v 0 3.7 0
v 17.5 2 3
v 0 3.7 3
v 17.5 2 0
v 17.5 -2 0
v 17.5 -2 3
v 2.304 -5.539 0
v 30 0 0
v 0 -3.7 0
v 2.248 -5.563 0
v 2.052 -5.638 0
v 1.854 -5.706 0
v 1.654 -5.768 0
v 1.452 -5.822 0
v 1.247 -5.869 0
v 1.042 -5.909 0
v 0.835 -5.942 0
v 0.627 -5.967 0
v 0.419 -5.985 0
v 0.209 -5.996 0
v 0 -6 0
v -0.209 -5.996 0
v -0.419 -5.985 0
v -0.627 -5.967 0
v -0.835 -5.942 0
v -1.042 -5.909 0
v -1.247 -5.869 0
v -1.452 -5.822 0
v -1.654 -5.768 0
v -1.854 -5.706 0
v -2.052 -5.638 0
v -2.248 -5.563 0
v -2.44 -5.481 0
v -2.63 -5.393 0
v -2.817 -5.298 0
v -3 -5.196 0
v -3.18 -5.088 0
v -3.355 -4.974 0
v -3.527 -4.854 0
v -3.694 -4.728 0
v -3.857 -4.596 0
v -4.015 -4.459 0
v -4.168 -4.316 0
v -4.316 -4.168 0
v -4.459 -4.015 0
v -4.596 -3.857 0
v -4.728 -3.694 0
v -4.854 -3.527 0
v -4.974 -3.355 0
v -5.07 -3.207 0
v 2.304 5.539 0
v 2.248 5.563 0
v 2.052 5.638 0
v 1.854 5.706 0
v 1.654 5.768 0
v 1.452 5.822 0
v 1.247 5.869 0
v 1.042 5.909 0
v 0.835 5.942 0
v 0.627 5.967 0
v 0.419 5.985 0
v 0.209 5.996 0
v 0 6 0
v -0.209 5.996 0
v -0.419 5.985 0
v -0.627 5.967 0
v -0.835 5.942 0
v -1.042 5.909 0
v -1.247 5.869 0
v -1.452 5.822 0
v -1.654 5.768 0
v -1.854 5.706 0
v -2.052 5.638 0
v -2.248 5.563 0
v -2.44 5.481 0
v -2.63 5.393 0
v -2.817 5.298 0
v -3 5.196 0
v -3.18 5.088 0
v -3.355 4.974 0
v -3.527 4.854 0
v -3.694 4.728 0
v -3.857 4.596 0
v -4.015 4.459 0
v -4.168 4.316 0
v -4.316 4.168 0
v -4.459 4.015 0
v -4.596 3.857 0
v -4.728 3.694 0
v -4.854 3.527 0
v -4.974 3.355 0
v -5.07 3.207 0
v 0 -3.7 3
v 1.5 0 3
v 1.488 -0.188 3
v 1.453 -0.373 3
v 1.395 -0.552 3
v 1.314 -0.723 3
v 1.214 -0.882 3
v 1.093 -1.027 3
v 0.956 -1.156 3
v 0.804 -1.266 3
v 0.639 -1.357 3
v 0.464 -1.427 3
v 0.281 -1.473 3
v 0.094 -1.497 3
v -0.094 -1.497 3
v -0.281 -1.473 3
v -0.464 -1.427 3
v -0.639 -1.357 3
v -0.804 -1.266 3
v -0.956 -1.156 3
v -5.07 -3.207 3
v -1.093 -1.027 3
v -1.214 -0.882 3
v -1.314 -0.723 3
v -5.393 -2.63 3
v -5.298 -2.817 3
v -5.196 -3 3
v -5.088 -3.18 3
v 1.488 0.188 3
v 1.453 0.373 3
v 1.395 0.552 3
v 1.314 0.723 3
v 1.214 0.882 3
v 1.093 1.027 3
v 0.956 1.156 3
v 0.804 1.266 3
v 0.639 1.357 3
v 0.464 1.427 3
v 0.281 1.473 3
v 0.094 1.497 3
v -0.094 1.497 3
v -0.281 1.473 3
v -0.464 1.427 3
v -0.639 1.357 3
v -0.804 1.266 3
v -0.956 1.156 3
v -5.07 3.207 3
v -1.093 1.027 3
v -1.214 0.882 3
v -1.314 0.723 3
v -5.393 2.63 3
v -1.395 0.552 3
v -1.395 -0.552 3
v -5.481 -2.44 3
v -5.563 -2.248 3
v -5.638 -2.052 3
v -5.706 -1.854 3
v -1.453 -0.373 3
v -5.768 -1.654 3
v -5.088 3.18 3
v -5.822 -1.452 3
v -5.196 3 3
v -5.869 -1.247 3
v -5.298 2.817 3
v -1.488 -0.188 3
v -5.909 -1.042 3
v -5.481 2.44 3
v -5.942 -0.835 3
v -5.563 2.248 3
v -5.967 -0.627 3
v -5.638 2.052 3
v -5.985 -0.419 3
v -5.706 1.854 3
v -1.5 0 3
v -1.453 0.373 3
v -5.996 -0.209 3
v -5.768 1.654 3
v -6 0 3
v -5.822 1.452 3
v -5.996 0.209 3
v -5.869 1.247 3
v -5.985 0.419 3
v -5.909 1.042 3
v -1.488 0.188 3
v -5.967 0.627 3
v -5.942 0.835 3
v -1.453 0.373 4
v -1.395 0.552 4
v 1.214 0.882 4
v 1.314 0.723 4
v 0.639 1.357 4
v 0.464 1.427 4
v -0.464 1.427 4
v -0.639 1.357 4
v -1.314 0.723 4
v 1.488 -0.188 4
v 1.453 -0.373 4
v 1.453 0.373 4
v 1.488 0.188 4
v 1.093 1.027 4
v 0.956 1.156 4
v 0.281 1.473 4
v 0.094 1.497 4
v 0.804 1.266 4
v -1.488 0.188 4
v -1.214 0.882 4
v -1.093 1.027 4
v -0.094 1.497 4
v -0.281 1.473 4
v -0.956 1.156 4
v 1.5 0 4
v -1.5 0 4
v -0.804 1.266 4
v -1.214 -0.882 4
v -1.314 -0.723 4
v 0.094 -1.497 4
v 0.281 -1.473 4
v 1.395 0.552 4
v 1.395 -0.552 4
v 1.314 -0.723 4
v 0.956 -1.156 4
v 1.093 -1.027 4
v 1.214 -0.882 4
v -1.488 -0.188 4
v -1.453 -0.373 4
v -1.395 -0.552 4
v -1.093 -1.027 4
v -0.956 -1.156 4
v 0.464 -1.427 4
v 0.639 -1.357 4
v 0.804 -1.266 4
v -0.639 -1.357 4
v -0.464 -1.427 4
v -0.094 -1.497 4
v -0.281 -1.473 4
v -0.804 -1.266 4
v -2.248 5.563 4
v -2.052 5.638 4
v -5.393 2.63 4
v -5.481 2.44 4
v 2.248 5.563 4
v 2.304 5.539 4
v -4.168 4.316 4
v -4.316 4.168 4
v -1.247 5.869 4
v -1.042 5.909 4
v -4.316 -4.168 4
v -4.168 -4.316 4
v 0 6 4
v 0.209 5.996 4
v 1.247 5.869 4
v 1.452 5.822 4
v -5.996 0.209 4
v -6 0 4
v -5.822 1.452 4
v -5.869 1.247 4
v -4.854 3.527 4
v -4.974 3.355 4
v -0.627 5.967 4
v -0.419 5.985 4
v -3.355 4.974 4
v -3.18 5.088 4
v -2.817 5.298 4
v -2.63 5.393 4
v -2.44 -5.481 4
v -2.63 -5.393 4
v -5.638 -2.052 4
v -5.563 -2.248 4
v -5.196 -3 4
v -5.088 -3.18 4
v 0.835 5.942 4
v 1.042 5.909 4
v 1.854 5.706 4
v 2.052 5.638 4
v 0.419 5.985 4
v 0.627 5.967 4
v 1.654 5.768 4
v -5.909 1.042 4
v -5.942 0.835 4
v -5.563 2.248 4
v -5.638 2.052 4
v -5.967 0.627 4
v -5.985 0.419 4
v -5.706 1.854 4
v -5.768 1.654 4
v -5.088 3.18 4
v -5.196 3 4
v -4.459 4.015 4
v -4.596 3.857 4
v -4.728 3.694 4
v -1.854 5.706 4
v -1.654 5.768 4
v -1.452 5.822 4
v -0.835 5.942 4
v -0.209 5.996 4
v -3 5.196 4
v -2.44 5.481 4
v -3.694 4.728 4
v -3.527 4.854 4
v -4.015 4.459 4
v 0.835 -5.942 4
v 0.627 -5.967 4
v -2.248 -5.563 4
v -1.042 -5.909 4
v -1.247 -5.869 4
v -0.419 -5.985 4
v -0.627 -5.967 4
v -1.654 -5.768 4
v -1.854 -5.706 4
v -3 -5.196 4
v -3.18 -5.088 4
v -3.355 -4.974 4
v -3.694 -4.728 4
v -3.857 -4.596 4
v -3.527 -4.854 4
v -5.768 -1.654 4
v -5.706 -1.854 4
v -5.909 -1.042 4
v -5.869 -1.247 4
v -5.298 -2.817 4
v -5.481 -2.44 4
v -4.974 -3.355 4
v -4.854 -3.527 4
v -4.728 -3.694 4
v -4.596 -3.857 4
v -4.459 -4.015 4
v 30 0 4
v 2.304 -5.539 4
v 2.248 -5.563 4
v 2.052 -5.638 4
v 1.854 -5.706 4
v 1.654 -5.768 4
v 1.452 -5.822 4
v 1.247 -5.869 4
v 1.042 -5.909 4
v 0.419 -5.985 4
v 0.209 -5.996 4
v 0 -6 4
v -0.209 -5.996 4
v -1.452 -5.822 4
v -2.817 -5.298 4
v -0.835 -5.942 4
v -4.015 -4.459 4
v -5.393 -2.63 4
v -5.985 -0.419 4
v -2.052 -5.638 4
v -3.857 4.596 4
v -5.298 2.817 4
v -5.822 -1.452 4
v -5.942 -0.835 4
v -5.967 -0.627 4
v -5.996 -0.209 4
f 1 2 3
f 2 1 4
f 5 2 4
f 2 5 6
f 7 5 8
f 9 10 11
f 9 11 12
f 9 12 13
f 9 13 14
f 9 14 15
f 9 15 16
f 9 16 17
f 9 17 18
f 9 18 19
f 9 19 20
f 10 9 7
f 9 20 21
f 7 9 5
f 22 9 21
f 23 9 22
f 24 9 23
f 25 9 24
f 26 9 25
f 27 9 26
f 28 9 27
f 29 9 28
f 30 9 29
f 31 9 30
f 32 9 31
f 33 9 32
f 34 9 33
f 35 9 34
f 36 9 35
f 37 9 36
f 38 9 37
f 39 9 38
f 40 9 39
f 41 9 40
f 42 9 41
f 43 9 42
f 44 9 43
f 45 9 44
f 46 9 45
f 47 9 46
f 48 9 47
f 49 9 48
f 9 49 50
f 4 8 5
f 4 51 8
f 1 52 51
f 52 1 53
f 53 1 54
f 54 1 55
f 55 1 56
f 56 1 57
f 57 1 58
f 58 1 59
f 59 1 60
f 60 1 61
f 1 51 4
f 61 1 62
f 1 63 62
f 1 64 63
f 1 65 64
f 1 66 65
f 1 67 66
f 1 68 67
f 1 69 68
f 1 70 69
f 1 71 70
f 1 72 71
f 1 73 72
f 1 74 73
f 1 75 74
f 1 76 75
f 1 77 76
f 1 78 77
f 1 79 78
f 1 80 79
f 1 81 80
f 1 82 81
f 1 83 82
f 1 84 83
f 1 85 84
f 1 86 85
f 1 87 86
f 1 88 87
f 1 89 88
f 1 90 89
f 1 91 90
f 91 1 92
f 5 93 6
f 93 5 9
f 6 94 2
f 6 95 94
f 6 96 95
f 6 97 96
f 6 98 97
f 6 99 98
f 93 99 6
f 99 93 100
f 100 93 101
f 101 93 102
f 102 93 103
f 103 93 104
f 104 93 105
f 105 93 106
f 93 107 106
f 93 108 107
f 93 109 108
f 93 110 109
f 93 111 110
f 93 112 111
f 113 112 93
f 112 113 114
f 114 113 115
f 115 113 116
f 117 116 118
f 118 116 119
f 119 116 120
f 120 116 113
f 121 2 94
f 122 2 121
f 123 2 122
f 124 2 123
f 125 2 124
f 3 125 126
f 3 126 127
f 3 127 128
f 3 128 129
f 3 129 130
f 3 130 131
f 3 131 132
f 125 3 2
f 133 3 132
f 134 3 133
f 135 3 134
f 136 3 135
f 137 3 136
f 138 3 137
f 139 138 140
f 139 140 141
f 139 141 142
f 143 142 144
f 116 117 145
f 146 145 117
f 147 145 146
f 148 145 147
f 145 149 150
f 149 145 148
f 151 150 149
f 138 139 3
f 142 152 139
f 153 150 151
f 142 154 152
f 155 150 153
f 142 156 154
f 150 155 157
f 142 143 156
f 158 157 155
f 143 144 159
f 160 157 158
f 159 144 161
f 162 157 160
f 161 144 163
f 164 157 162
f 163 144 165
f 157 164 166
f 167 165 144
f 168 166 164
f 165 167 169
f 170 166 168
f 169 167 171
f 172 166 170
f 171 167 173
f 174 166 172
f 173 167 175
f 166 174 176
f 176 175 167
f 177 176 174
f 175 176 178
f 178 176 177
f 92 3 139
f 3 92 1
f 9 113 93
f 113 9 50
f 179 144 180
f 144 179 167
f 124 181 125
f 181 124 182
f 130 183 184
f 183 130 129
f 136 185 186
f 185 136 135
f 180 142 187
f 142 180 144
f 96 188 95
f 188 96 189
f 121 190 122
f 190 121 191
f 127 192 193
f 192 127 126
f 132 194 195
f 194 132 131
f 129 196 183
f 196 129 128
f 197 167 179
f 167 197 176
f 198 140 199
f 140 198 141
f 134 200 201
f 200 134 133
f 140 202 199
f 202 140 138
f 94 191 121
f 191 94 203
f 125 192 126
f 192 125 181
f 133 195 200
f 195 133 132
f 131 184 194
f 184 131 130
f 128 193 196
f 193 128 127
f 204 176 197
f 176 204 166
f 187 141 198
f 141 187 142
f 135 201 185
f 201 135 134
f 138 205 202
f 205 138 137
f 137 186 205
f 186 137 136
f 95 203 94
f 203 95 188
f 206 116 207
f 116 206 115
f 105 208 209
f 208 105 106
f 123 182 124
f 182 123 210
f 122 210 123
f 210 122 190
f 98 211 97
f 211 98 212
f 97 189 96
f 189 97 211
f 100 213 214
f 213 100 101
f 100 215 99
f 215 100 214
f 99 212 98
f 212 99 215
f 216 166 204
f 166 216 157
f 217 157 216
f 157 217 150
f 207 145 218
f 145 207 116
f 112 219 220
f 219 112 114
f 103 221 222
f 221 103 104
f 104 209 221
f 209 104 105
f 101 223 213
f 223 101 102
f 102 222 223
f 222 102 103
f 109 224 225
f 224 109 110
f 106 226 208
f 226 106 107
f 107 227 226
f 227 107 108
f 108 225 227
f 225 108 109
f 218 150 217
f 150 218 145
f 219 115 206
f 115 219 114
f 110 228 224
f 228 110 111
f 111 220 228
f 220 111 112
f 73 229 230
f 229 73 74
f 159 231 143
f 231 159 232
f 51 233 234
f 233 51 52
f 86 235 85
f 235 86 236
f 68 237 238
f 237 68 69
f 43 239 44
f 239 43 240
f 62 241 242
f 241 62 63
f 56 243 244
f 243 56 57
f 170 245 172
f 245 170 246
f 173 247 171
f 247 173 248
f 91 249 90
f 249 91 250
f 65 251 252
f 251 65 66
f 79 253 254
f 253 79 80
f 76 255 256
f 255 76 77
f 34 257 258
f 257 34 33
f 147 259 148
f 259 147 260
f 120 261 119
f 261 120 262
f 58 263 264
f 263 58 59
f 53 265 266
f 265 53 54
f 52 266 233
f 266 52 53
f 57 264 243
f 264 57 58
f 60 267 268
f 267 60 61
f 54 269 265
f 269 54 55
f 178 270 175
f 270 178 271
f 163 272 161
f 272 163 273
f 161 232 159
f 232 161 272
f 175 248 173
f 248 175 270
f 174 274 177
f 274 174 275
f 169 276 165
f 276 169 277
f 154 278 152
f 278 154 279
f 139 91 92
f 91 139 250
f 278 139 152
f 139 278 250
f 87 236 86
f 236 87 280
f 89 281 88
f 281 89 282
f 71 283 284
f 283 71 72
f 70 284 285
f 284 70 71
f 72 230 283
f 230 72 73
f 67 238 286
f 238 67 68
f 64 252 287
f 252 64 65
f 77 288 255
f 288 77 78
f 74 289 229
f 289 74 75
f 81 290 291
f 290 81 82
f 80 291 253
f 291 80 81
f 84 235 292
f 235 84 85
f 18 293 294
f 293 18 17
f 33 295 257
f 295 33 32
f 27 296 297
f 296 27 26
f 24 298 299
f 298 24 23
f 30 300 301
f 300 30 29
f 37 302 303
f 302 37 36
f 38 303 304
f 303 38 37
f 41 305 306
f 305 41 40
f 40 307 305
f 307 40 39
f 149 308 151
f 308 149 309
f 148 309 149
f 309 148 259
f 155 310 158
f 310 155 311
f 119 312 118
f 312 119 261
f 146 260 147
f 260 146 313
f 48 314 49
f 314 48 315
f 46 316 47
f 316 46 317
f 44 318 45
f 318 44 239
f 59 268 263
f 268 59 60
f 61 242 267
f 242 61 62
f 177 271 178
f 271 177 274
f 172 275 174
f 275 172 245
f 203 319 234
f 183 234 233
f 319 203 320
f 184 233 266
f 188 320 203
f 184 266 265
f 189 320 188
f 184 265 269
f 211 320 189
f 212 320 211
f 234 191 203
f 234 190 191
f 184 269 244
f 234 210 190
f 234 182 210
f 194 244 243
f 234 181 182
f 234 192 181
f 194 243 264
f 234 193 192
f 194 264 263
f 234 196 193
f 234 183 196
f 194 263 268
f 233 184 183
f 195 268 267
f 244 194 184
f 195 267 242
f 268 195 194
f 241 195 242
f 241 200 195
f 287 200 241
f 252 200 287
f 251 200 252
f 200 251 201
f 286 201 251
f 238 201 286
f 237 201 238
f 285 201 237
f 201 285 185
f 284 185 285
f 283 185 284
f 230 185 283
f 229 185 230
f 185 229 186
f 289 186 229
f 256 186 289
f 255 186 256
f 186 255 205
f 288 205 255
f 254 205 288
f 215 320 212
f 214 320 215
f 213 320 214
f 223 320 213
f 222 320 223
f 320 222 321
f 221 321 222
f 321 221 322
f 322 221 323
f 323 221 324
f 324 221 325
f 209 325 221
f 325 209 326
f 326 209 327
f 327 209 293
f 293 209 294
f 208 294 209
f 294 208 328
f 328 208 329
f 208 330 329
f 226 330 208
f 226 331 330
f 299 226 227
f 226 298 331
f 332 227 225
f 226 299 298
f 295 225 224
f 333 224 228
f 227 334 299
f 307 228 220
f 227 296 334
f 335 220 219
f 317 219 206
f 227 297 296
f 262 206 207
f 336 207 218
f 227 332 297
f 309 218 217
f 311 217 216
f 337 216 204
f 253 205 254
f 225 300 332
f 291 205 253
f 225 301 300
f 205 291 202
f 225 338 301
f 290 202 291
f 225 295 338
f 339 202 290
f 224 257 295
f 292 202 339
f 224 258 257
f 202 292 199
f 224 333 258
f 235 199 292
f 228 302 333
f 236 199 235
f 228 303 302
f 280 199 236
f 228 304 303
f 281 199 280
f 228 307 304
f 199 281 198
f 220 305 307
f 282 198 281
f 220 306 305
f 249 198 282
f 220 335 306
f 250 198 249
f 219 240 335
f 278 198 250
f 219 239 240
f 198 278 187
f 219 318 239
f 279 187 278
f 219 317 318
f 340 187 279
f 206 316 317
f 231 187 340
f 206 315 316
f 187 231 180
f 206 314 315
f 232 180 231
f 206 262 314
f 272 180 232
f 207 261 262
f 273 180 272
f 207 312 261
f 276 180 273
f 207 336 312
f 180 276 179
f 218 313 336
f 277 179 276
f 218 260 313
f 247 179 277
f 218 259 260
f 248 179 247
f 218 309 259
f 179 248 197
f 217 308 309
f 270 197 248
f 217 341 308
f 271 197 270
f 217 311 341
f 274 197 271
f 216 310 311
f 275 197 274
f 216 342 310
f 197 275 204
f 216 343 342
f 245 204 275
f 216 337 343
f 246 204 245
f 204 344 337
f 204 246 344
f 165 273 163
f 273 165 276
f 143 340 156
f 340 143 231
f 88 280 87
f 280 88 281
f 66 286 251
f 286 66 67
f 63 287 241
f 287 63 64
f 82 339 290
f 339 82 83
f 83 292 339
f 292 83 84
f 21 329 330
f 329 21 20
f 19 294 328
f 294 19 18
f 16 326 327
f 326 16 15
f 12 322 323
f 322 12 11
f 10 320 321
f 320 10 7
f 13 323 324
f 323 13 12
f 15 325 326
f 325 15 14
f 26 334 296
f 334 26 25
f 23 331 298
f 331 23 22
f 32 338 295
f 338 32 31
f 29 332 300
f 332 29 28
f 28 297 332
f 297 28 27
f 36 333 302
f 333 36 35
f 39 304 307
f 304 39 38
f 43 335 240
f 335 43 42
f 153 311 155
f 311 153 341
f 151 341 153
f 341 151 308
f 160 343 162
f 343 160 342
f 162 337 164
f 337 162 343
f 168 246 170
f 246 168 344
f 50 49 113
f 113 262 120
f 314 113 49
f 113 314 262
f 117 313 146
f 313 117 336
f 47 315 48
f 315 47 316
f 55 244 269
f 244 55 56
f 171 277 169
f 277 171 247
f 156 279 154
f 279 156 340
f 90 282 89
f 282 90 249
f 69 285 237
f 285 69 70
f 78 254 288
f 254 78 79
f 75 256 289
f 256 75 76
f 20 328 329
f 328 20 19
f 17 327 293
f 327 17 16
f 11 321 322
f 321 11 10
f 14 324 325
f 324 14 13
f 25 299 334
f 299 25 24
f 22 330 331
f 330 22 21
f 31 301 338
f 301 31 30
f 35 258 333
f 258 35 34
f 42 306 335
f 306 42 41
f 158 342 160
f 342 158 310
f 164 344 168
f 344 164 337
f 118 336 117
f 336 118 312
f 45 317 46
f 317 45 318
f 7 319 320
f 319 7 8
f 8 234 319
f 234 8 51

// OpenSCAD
honeH=3;
honeAllH=4;

module attachedHone(){
    linear_extrude(height = honeH)
        polygon([[0,7.4/2],[17.5,4/2],[17.5,-4/2],[0,-7.4/2]]);
}

difference(){
    union(){
        cylinder(r=6,h=honeAllH,$fn=180);
        linear_extrude(height = honeAllH)
        polygon([[0,6],[30,0],[0,-6]]);
    }
    union(){
        attachedHone();
        scale([-1,1,1])
        attachedHone();
        cylinder(r=1.5,h=100,$fn=50);
    }
}
